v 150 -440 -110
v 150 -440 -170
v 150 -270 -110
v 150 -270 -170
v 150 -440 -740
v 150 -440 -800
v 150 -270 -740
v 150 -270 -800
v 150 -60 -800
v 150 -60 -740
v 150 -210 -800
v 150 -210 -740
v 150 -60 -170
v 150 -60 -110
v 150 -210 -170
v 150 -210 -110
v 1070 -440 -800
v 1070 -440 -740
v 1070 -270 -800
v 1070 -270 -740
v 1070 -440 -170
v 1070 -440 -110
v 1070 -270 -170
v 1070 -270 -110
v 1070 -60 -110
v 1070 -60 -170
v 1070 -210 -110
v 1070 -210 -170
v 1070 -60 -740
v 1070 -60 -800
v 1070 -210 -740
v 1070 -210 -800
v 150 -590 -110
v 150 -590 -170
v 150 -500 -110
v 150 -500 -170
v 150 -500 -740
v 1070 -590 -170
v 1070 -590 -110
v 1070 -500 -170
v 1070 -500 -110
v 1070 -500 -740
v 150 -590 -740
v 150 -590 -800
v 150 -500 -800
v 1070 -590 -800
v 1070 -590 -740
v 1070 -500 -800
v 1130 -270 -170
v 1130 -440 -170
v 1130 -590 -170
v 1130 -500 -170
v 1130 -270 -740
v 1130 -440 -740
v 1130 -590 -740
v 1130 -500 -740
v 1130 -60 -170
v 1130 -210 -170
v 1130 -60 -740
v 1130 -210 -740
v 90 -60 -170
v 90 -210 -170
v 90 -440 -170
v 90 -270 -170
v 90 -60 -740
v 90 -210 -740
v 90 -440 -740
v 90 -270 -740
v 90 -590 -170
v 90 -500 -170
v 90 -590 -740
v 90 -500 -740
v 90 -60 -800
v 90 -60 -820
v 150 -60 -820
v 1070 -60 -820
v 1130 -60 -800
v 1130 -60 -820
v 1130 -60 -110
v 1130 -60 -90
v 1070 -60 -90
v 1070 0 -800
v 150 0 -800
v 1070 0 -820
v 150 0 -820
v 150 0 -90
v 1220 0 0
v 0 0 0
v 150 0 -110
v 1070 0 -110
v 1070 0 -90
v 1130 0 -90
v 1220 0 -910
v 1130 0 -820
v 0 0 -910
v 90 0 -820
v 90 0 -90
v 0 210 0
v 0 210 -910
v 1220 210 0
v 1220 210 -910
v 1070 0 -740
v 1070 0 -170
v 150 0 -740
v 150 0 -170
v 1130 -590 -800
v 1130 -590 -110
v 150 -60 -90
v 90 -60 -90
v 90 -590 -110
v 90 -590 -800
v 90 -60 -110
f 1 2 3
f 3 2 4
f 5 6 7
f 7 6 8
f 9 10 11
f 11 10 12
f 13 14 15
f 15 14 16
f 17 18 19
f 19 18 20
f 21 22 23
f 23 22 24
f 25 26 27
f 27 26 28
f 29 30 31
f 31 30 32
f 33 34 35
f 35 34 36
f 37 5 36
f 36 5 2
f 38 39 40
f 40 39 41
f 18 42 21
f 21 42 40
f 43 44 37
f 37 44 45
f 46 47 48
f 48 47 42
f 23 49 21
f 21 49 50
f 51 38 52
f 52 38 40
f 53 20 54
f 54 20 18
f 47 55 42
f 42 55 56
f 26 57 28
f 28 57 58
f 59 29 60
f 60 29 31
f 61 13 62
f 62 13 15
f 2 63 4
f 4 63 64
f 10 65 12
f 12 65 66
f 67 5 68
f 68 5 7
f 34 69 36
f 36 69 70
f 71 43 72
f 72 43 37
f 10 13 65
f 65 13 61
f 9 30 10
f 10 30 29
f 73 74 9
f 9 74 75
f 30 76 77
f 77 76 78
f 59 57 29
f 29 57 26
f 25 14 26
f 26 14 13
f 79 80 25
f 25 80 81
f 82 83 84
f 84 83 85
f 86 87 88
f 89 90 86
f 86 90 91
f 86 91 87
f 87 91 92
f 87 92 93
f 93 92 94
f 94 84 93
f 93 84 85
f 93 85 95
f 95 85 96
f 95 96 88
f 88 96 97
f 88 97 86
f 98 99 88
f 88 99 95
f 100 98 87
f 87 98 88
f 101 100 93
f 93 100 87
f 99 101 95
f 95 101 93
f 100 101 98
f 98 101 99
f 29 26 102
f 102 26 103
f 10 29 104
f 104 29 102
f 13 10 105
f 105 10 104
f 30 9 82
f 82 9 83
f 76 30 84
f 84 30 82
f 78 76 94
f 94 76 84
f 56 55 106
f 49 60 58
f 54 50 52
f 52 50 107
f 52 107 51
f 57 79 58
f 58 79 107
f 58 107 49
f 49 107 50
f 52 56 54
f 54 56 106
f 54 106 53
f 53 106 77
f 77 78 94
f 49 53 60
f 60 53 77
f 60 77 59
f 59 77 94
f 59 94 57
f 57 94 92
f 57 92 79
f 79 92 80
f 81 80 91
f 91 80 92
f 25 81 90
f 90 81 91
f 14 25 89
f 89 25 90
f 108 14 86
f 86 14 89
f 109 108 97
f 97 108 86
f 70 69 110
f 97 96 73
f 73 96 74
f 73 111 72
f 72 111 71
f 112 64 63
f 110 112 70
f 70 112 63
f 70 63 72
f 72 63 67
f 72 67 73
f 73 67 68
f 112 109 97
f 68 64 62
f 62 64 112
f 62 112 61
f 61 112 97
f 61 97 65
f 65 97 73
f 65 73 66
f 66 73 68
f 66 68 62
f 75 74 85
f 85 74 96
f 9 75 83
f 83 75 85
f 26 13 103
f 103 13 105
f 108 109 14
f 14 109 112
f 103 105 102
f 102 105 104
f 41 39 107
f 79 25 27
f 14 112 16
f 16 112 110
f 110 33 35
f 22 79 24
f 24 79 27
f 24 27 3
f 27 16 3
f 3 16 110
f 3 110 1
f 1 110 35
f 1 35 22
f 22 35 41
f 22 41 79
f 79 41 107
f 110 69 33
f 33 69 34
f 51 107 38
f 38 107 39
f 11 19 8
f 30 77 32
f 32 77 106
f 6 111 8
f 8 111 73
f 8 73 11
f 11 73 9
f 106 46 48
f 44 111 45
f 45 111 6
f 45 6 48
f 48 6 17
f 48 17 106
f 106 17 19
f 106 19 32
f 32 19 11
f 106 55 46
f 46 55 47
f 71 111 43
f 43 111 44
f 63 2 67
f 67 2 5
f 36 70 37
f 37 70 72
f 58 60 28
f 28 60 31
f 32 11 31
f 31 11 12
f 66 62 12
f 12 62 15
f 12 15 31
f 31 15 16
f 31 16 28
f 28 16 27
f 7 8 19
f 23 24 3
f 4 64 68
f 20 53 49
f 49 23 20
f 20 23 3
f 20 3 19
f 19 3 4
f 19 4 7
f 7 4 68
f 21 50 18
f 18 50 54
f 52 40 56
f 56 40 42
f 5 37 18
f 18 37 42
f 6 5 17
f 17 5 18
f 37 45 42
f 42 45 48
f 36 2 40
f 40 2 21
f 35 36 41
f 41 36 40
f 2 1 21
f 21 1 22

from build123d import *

# Parameters (mm, degrees)
SKETCH_1_W      = 1220
SKETCH_1_H      = 910
EXTRUDE_1_DEPTH = 210
SKETCH_2_W      = 60
SKETCH_2_H      = 730
SKETCH_2_W_2    = 920
SKETCH_2_H_2    = 60
EXTRUDE_2_DEPTH = 60
SKETCH_3_W      = 60
SKETCH_3_H      = 60
EXTRUDE_3_DEPTH = 530
EXTRUDE_4_REACH = 1546.053
SKETCH_4_W      = 60
SKETCH_4_H      = 60
EXTRUDE_5_REACH = 1525.516
SKETCH_5_W      = 60
SKETCH_5_H      = 60
SKETCH_6_W      = 690
SKETCH_6_H      = 60
EXTRUDE_7_DEPTH = 980


with BuildPart() as part:
    # ｽｹｯﾁ1 → ﾎﾞｽ - 押し出し1 (new body)
    with BuildSketch(Plane(origin=(0, 0, 0), x_dir=(1, 0, 0), z_dir=(0, 1, 0))):
        with Locations((610, 455)):
            Rectangle(SKETCH_1_W, SKETCH_1_H)
    extrude(amount=EXTRUDE_1_DEPTH)

    # ｽｹｯﾁ2 → ﾎﾞｽ - 押し出し2 (add)
    with BuildSketch(Plane.XZ):
        with Locations((120, -455)):
            Rectangle(SKETCH_2_W, SKETCH_2_H)
        with Locations((610, -140)):
            Rectangle(SKETCH_2_W_2, SKETCH_2_H_2)
        with Locations((610, -770)):
            Rectangle(SKETCH_2_W_2, SKETCH_2_H_2)
        with Locations((1100, -455)):
            Rectangle(SKETCH_2_W, SKETCH_2_H)
    extrude(amount=EXTRUDE_2_DEPTH)

    # ｽｹｯﾁ3 → ﾎﾞｽ - 押し出し3 (add)
    with BuildSketch(Plane(origin=(0, -60, 0), x_dir=(-1, 0, 0), z_dir=(0, -1, 0))):
        with Locations((-120, 140)):
            Rectangle(SKETCH_3_W, SKETCH_3_H)
        with Locations((-1100, 140)):
            Rectangle(SKETCH_3_W, SKETCH_3_H)
        with Locations((-1100, 770)):
            Rectangle(SKETCH_3_W, SKETCH_3_H)
        with Locations((-120, 770)):
            Rectangle(SKETCH_3_W, SKETCH_3_H)
    extrude(amount=EXTRUDE_3_DEPTH)

    # ｽｹｯﾁ4 → ﾎﾞｽ - 押し出し4 (add, up to next)
    with BuildSketch(Plane(origin=(0, 0, -170), x_dir=(-1, 0, 0), z_dir=(0, 0, -1)), mode=Mode.PRIVATE) as extrude_4_sk1:
        with Locations((-120, -470)):
            Rectangle(SKETCH_4_W, SKETCH_4_H)
    extrude_4_tool1 = extrude(extrude_4_sk1.sketch, amount=EXTRUDE_4_REACH, mode=Mode.PRIVATE) - part.part
    # ｽｹｯﾁ4 → ﾎﾞｽ - 押し出し4 (add, up to next)
    with BuildSketch(Plane(origin=(0, 0, -170), x_dir=(-1, 0, 0), z_dir=(0, 0, -1)), mode=Mode.PRIVATE) as extrude_4_sk2:
        with Locations((-120, -240)):
            Rectangle(SKETCH_4_W, SKETCH_4_H)
    extrude_4_tool2 = extrude(extrude_4_sk2.sketch, amount=EXTRUDE_4_REACH, mode=Mode.PRIVATE) - part.part
    # ｽｹｯﾁ4 → ﾎﾞｽ - 押し出し4 (add, up to next)
    with BuildSketch(Plane(origin=(0, 0, -170), x_dir=(-1, 0, 0), z_dir=(0, 0, -1)), mode=Mode.PRIVATE) as extrude_4_sk3:
        with Locations((-1100, -240)):
            Rectangle(SKETCH_4_W, SKETCH_4_H)
    extrude_4_tool3 = extrude(extrude_4_sk3.sketch, amount=EXTRUDE_4_REACH, mode=Mode.PRIVATE) - part.part
    # ｽｹｯﾁ4 → ﾎﾞｽ - 押し出し4 (add, up to next)
    with BuildSketch(Plane(origin=(0, 0, -170), x_dir=(-1, 0, 0), z_dir=(0, 0, -1)), mode=Mode.PRIVATE) as extrude_4_sk4:
        with Locations((-1100, -470)):
            Rectangle(SKETCH_4_W, SKETCH_4_H)
    extrude_4_tool4 = extrude(extrude_4_sk4.sketch, amount=EXTRUDE_4_REACH, mode=Mode.PRIVATE) - part.part
    add(extrude_4_tool1.solids().sort_by_distance((120, -470, -170))[0])
    add(extrude_4_tool2.solids().sort_by_distance((120, -240, -170))[0])
    add(extrude_4_tool3.solids().sort_by_distance((1100, -240, -170))[0])
    add(extrude_4_tool4.solids().sort_by_distance((1100, -470, -170))[0])

    # ｽｹｯﾁ5 → ﾎﾞｽ - 押し出し5 (add, up to next)
    with BuildSketch(Plane(origin=(150, 0, 0), x_dir=(0, 0, -1), z_dir=(1, 0, 0)), mode=Mode.PRIVATE) as extrude_5_sk1:
        with Locations((770, -470)):
            Rectangle(SKETCH_5_W, SKETCH_5_H)
    extrude_5_tool1 = extrude(extrude_5_sk1.sketch, amount=EXTRUDE_5_REACH, mode=Mode.PRIVATE) - part.part
    # ｽｹｯﾁ5 → ﾎﾞｽ - 押し出し5 (add, up to next)
    with BuildSketch(Plane(origin=(150, 0, 0), x_dir=(0, 0, -1), z_dir=(1, 0, 0)), mode=Mode.PRIVATE) as extrude_5_sk2:
        with Locations((140, -470)):
            Rectangle(SKETCH_5_W, SKETCH_5_H)
    extrude_5_tool2 = extrude(extrude_5_sk2.sketch, amount=EXTRUDE_5_REACH, mode=Mode.PRIVATE) - part.part
    add(extrude_5_tool1.solids().sort_by_distance((150, -470, -770))[0])
    add(extrude_5_tool2.solids().sort_by_distance((150, -470, -140))[0])

    # ｽｹｯﾁ6 → ﾎﾞｽ - 押し出し7 (add)
    with BuildSketch(Plane.ZY.offset(-1070)):
        with Locations((-455, -240)):
            Rectangle(SKETCH_6_W, SKETCH_6_H)
    extrude(amount=EXTRUDE_7_DEPTH)


solid = part.part
